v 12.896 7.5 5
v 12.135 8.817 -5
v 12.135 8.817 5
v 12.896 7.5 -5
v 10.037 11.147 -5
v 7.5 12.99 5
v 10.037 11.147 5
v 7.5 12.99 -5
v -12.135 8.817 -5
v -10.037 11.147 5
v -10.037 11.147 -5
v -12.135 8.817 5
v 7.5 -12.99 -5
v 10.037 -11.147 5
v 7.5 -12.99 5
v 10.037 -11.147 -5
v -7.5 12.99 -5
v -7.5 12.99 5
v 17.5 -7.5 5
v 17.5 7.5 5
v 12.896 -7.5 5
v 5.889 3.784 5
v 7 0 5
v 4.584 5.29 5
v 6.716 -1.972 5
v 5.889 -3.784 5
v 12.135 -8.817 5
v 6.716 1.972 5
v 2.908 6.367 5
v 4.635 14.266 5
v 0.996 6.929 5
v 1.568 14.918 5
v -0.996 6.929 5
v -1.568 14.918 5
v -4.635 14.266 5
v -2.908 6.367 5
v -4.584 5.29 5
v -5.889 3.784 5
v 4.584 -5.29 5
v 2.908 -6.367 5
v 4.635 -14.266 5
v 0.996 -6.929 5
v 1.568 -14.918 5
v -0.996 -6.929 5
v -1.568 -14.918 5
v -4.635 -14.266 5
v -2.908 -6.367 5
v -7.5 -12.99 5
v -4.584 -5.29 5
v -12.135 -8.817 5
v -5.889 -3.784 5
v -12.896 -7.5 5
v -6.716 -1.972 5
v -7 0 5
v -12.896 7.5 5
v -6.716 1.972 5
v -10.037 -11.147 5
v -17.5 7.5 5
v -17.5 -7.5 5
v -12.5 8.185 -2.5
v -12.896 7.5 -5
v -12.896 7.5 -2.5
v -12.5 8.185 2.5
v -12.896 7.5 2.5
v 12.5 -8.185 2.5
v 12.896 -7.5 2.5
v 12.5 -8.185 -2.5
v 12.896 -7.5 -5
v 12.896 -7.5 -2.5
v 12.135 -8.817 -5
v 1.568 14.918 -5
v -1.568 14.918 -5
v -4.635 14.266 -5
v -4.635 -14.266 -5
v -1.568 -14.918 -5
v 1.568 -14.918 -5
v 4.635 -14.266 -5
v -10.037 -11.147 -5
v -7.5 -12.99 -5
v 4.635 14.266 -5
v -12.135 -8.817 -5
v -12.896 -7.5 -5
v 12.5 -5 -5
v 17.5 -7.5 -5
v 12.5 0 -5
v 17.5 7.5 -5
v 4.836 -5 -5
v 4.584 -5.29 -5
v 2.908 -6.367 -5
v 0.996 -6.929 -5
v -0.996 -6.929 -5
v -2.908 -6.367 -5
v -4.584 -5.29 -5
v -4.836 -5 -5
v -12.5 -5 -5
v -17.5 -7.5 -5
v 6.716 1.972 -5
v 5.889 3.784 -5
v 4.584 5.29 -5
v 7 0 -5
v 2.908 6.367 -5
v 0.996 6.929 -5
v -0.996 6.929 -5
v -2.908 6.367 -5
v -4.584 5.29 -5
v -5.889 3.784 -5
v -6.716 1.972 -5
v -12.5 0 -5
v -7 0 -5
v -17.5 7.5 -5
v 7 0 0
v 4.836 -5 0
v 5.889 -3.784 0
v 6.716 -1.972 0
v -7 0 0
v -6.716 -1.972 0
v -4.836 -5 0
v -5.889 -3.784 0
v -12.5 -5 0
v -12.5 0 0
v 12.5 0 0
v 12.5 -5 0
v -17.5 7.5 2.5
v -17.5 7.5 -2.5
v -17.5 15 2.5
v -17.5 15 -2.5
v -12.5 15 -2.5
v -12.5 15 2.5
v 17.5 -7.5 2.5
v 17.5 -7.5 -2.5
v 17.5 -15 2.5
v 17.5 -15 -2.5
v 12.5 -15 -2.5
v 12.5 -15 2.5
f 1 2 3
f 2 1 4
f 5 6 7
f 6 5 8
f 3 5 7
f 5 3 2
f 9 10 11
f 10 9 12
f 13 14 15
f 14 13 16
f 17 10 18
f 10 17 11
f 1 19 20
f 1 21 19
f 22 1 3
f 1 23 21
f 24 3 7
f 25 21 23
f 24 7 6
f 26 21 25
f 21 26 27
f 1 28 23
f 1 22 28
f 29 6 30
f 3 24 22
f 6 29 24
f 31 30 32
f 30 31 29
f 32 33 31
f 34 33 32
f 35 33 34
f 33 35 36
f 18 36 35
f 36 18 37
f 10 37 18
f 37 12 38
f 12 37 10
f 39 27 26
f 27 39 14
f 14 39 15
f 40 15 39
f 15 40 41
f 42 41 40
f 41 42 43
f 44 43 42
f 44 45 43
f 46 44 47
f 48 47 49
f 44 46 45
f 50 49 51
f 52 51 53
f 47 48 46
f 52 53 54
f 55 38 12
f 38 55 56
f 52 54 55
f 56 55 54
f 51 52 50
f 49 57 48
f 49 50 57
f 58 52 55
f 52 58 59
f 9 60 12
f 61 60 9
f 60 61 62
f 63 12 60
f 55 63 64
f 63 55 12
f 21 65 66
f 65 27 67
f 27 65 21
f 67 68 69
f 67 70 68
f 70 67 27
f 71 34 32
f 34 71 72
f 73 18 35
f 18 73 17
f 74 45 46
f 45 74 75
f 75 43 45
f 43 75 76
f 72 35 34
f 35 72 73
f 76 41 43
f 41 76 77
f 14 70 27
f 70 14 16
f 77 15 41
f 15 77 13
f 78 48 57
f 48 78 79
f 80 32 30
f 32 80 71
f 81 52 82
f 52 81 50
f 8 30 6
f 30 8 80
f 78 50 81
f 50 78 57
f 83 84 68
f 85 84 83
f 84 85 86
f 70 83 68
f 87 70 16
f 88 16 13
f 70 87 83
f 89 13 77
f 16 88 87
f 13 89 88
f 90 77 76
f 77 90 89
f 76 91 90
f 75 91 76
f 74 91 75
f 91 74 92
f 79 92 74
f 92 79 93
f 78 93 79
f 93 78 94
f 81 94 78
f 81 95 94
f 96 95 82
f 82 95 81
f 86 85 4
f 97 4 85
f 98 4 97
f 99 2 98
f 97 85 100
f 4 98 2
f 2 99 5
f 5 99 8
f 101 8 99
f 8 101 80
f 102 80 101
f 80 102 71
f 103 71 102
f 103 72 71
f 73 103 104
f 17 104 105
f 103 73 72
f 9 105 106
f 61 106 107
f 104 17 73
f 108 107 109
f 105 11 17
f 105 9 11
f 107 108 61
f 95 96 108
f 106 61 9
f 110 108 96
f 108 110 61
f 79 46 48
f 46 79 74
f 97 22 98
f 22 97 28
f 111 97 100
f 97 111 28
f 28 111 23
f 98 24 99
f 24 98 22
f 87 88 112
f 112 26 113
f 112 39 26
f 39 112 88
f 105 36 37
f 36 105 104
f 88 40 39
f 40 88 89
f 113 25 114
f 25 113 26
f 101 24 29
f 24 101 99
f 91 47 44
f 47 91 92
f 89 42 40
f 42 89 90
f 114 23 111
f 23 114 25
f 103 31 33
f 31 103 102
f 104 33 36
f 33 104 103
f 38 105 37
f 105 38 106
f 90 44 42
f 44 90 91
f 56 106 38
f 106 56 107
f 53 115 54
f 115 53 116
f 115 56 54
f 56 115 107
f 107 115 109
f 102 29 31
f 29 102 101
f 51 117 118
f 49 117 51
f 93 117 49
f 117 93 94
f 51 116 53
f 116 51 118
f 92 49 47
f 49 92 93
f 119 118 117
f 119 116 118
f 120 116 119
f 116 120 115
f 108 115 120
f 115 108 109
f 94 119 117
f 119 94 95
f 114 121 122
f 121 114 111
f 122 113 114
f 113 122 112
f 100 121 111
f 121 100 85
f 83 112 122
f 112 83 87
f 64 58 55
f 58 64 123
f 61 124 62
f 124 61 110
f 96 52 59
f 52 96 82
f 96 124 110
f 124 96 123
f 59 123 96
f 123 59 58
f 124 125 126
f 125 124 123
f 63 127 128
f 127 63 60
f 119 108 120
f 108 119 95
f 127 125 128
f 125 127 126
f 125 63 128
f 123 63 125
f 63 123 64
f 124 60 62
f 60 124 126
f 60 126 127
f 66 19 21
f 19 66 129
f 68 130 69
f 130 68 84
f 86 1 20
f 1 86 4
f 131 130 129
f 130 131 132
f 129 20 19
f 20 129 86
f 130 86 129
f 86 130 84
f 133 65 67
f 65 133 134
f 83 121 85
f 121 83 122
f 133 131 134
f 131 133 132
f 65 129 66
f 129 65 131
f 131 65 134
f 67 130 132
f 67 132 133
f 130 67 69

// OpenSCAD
// Parameters for the central body
module central_body() {
    difference() {
        // Main cylindrical body
        cylinder(h = 10, r = 15, center = true);
        
        // Central hole (enlarged to match the original model)
        translate([0, 0, -5])
            cylinder(h = 20, r = 7, center = true);
        
        // Rectangular cutouts on opposite sides (added to match the original model)
        translate([-7.5, -2.5, -5])
            cube([15, 5, 10], center = true);
        translate([7.5, -2.5, -5])
            cube([15, 5, 10], center = true);
        
        // Flat protruding surfaces with rectangular cutouts
        translate([-15, -2.5, -5])
            cube([5, 5, 10], center = true);
        translate([15, -2.5, -5])
            cube([5, 5, 10], center = true);
    }
}

// Parameters for the side arm
module side_arm() {
    union() {
        // L-shaped arm
        cube([15, 5, 10], center = true);
        translate([7.5, 0, 0])
            cube([15, 5, 5], center = true);
    }
}

// Assembly of the flexible coupling
module flexible_coupling() {
    // Layer 1: Central body
    central_body();
    
    // Layer 2: Side arms (repositioned to align symmetrically and fit into the rectangular cutouts)
    translate([-15, 0, 0])
        rotate([0, 0, 90])
        side_arm();
    translate([15, 0, 0])
        rotate([0, 0, -90])
        side_arm();
}

// Render the model
flexible_coupling();
